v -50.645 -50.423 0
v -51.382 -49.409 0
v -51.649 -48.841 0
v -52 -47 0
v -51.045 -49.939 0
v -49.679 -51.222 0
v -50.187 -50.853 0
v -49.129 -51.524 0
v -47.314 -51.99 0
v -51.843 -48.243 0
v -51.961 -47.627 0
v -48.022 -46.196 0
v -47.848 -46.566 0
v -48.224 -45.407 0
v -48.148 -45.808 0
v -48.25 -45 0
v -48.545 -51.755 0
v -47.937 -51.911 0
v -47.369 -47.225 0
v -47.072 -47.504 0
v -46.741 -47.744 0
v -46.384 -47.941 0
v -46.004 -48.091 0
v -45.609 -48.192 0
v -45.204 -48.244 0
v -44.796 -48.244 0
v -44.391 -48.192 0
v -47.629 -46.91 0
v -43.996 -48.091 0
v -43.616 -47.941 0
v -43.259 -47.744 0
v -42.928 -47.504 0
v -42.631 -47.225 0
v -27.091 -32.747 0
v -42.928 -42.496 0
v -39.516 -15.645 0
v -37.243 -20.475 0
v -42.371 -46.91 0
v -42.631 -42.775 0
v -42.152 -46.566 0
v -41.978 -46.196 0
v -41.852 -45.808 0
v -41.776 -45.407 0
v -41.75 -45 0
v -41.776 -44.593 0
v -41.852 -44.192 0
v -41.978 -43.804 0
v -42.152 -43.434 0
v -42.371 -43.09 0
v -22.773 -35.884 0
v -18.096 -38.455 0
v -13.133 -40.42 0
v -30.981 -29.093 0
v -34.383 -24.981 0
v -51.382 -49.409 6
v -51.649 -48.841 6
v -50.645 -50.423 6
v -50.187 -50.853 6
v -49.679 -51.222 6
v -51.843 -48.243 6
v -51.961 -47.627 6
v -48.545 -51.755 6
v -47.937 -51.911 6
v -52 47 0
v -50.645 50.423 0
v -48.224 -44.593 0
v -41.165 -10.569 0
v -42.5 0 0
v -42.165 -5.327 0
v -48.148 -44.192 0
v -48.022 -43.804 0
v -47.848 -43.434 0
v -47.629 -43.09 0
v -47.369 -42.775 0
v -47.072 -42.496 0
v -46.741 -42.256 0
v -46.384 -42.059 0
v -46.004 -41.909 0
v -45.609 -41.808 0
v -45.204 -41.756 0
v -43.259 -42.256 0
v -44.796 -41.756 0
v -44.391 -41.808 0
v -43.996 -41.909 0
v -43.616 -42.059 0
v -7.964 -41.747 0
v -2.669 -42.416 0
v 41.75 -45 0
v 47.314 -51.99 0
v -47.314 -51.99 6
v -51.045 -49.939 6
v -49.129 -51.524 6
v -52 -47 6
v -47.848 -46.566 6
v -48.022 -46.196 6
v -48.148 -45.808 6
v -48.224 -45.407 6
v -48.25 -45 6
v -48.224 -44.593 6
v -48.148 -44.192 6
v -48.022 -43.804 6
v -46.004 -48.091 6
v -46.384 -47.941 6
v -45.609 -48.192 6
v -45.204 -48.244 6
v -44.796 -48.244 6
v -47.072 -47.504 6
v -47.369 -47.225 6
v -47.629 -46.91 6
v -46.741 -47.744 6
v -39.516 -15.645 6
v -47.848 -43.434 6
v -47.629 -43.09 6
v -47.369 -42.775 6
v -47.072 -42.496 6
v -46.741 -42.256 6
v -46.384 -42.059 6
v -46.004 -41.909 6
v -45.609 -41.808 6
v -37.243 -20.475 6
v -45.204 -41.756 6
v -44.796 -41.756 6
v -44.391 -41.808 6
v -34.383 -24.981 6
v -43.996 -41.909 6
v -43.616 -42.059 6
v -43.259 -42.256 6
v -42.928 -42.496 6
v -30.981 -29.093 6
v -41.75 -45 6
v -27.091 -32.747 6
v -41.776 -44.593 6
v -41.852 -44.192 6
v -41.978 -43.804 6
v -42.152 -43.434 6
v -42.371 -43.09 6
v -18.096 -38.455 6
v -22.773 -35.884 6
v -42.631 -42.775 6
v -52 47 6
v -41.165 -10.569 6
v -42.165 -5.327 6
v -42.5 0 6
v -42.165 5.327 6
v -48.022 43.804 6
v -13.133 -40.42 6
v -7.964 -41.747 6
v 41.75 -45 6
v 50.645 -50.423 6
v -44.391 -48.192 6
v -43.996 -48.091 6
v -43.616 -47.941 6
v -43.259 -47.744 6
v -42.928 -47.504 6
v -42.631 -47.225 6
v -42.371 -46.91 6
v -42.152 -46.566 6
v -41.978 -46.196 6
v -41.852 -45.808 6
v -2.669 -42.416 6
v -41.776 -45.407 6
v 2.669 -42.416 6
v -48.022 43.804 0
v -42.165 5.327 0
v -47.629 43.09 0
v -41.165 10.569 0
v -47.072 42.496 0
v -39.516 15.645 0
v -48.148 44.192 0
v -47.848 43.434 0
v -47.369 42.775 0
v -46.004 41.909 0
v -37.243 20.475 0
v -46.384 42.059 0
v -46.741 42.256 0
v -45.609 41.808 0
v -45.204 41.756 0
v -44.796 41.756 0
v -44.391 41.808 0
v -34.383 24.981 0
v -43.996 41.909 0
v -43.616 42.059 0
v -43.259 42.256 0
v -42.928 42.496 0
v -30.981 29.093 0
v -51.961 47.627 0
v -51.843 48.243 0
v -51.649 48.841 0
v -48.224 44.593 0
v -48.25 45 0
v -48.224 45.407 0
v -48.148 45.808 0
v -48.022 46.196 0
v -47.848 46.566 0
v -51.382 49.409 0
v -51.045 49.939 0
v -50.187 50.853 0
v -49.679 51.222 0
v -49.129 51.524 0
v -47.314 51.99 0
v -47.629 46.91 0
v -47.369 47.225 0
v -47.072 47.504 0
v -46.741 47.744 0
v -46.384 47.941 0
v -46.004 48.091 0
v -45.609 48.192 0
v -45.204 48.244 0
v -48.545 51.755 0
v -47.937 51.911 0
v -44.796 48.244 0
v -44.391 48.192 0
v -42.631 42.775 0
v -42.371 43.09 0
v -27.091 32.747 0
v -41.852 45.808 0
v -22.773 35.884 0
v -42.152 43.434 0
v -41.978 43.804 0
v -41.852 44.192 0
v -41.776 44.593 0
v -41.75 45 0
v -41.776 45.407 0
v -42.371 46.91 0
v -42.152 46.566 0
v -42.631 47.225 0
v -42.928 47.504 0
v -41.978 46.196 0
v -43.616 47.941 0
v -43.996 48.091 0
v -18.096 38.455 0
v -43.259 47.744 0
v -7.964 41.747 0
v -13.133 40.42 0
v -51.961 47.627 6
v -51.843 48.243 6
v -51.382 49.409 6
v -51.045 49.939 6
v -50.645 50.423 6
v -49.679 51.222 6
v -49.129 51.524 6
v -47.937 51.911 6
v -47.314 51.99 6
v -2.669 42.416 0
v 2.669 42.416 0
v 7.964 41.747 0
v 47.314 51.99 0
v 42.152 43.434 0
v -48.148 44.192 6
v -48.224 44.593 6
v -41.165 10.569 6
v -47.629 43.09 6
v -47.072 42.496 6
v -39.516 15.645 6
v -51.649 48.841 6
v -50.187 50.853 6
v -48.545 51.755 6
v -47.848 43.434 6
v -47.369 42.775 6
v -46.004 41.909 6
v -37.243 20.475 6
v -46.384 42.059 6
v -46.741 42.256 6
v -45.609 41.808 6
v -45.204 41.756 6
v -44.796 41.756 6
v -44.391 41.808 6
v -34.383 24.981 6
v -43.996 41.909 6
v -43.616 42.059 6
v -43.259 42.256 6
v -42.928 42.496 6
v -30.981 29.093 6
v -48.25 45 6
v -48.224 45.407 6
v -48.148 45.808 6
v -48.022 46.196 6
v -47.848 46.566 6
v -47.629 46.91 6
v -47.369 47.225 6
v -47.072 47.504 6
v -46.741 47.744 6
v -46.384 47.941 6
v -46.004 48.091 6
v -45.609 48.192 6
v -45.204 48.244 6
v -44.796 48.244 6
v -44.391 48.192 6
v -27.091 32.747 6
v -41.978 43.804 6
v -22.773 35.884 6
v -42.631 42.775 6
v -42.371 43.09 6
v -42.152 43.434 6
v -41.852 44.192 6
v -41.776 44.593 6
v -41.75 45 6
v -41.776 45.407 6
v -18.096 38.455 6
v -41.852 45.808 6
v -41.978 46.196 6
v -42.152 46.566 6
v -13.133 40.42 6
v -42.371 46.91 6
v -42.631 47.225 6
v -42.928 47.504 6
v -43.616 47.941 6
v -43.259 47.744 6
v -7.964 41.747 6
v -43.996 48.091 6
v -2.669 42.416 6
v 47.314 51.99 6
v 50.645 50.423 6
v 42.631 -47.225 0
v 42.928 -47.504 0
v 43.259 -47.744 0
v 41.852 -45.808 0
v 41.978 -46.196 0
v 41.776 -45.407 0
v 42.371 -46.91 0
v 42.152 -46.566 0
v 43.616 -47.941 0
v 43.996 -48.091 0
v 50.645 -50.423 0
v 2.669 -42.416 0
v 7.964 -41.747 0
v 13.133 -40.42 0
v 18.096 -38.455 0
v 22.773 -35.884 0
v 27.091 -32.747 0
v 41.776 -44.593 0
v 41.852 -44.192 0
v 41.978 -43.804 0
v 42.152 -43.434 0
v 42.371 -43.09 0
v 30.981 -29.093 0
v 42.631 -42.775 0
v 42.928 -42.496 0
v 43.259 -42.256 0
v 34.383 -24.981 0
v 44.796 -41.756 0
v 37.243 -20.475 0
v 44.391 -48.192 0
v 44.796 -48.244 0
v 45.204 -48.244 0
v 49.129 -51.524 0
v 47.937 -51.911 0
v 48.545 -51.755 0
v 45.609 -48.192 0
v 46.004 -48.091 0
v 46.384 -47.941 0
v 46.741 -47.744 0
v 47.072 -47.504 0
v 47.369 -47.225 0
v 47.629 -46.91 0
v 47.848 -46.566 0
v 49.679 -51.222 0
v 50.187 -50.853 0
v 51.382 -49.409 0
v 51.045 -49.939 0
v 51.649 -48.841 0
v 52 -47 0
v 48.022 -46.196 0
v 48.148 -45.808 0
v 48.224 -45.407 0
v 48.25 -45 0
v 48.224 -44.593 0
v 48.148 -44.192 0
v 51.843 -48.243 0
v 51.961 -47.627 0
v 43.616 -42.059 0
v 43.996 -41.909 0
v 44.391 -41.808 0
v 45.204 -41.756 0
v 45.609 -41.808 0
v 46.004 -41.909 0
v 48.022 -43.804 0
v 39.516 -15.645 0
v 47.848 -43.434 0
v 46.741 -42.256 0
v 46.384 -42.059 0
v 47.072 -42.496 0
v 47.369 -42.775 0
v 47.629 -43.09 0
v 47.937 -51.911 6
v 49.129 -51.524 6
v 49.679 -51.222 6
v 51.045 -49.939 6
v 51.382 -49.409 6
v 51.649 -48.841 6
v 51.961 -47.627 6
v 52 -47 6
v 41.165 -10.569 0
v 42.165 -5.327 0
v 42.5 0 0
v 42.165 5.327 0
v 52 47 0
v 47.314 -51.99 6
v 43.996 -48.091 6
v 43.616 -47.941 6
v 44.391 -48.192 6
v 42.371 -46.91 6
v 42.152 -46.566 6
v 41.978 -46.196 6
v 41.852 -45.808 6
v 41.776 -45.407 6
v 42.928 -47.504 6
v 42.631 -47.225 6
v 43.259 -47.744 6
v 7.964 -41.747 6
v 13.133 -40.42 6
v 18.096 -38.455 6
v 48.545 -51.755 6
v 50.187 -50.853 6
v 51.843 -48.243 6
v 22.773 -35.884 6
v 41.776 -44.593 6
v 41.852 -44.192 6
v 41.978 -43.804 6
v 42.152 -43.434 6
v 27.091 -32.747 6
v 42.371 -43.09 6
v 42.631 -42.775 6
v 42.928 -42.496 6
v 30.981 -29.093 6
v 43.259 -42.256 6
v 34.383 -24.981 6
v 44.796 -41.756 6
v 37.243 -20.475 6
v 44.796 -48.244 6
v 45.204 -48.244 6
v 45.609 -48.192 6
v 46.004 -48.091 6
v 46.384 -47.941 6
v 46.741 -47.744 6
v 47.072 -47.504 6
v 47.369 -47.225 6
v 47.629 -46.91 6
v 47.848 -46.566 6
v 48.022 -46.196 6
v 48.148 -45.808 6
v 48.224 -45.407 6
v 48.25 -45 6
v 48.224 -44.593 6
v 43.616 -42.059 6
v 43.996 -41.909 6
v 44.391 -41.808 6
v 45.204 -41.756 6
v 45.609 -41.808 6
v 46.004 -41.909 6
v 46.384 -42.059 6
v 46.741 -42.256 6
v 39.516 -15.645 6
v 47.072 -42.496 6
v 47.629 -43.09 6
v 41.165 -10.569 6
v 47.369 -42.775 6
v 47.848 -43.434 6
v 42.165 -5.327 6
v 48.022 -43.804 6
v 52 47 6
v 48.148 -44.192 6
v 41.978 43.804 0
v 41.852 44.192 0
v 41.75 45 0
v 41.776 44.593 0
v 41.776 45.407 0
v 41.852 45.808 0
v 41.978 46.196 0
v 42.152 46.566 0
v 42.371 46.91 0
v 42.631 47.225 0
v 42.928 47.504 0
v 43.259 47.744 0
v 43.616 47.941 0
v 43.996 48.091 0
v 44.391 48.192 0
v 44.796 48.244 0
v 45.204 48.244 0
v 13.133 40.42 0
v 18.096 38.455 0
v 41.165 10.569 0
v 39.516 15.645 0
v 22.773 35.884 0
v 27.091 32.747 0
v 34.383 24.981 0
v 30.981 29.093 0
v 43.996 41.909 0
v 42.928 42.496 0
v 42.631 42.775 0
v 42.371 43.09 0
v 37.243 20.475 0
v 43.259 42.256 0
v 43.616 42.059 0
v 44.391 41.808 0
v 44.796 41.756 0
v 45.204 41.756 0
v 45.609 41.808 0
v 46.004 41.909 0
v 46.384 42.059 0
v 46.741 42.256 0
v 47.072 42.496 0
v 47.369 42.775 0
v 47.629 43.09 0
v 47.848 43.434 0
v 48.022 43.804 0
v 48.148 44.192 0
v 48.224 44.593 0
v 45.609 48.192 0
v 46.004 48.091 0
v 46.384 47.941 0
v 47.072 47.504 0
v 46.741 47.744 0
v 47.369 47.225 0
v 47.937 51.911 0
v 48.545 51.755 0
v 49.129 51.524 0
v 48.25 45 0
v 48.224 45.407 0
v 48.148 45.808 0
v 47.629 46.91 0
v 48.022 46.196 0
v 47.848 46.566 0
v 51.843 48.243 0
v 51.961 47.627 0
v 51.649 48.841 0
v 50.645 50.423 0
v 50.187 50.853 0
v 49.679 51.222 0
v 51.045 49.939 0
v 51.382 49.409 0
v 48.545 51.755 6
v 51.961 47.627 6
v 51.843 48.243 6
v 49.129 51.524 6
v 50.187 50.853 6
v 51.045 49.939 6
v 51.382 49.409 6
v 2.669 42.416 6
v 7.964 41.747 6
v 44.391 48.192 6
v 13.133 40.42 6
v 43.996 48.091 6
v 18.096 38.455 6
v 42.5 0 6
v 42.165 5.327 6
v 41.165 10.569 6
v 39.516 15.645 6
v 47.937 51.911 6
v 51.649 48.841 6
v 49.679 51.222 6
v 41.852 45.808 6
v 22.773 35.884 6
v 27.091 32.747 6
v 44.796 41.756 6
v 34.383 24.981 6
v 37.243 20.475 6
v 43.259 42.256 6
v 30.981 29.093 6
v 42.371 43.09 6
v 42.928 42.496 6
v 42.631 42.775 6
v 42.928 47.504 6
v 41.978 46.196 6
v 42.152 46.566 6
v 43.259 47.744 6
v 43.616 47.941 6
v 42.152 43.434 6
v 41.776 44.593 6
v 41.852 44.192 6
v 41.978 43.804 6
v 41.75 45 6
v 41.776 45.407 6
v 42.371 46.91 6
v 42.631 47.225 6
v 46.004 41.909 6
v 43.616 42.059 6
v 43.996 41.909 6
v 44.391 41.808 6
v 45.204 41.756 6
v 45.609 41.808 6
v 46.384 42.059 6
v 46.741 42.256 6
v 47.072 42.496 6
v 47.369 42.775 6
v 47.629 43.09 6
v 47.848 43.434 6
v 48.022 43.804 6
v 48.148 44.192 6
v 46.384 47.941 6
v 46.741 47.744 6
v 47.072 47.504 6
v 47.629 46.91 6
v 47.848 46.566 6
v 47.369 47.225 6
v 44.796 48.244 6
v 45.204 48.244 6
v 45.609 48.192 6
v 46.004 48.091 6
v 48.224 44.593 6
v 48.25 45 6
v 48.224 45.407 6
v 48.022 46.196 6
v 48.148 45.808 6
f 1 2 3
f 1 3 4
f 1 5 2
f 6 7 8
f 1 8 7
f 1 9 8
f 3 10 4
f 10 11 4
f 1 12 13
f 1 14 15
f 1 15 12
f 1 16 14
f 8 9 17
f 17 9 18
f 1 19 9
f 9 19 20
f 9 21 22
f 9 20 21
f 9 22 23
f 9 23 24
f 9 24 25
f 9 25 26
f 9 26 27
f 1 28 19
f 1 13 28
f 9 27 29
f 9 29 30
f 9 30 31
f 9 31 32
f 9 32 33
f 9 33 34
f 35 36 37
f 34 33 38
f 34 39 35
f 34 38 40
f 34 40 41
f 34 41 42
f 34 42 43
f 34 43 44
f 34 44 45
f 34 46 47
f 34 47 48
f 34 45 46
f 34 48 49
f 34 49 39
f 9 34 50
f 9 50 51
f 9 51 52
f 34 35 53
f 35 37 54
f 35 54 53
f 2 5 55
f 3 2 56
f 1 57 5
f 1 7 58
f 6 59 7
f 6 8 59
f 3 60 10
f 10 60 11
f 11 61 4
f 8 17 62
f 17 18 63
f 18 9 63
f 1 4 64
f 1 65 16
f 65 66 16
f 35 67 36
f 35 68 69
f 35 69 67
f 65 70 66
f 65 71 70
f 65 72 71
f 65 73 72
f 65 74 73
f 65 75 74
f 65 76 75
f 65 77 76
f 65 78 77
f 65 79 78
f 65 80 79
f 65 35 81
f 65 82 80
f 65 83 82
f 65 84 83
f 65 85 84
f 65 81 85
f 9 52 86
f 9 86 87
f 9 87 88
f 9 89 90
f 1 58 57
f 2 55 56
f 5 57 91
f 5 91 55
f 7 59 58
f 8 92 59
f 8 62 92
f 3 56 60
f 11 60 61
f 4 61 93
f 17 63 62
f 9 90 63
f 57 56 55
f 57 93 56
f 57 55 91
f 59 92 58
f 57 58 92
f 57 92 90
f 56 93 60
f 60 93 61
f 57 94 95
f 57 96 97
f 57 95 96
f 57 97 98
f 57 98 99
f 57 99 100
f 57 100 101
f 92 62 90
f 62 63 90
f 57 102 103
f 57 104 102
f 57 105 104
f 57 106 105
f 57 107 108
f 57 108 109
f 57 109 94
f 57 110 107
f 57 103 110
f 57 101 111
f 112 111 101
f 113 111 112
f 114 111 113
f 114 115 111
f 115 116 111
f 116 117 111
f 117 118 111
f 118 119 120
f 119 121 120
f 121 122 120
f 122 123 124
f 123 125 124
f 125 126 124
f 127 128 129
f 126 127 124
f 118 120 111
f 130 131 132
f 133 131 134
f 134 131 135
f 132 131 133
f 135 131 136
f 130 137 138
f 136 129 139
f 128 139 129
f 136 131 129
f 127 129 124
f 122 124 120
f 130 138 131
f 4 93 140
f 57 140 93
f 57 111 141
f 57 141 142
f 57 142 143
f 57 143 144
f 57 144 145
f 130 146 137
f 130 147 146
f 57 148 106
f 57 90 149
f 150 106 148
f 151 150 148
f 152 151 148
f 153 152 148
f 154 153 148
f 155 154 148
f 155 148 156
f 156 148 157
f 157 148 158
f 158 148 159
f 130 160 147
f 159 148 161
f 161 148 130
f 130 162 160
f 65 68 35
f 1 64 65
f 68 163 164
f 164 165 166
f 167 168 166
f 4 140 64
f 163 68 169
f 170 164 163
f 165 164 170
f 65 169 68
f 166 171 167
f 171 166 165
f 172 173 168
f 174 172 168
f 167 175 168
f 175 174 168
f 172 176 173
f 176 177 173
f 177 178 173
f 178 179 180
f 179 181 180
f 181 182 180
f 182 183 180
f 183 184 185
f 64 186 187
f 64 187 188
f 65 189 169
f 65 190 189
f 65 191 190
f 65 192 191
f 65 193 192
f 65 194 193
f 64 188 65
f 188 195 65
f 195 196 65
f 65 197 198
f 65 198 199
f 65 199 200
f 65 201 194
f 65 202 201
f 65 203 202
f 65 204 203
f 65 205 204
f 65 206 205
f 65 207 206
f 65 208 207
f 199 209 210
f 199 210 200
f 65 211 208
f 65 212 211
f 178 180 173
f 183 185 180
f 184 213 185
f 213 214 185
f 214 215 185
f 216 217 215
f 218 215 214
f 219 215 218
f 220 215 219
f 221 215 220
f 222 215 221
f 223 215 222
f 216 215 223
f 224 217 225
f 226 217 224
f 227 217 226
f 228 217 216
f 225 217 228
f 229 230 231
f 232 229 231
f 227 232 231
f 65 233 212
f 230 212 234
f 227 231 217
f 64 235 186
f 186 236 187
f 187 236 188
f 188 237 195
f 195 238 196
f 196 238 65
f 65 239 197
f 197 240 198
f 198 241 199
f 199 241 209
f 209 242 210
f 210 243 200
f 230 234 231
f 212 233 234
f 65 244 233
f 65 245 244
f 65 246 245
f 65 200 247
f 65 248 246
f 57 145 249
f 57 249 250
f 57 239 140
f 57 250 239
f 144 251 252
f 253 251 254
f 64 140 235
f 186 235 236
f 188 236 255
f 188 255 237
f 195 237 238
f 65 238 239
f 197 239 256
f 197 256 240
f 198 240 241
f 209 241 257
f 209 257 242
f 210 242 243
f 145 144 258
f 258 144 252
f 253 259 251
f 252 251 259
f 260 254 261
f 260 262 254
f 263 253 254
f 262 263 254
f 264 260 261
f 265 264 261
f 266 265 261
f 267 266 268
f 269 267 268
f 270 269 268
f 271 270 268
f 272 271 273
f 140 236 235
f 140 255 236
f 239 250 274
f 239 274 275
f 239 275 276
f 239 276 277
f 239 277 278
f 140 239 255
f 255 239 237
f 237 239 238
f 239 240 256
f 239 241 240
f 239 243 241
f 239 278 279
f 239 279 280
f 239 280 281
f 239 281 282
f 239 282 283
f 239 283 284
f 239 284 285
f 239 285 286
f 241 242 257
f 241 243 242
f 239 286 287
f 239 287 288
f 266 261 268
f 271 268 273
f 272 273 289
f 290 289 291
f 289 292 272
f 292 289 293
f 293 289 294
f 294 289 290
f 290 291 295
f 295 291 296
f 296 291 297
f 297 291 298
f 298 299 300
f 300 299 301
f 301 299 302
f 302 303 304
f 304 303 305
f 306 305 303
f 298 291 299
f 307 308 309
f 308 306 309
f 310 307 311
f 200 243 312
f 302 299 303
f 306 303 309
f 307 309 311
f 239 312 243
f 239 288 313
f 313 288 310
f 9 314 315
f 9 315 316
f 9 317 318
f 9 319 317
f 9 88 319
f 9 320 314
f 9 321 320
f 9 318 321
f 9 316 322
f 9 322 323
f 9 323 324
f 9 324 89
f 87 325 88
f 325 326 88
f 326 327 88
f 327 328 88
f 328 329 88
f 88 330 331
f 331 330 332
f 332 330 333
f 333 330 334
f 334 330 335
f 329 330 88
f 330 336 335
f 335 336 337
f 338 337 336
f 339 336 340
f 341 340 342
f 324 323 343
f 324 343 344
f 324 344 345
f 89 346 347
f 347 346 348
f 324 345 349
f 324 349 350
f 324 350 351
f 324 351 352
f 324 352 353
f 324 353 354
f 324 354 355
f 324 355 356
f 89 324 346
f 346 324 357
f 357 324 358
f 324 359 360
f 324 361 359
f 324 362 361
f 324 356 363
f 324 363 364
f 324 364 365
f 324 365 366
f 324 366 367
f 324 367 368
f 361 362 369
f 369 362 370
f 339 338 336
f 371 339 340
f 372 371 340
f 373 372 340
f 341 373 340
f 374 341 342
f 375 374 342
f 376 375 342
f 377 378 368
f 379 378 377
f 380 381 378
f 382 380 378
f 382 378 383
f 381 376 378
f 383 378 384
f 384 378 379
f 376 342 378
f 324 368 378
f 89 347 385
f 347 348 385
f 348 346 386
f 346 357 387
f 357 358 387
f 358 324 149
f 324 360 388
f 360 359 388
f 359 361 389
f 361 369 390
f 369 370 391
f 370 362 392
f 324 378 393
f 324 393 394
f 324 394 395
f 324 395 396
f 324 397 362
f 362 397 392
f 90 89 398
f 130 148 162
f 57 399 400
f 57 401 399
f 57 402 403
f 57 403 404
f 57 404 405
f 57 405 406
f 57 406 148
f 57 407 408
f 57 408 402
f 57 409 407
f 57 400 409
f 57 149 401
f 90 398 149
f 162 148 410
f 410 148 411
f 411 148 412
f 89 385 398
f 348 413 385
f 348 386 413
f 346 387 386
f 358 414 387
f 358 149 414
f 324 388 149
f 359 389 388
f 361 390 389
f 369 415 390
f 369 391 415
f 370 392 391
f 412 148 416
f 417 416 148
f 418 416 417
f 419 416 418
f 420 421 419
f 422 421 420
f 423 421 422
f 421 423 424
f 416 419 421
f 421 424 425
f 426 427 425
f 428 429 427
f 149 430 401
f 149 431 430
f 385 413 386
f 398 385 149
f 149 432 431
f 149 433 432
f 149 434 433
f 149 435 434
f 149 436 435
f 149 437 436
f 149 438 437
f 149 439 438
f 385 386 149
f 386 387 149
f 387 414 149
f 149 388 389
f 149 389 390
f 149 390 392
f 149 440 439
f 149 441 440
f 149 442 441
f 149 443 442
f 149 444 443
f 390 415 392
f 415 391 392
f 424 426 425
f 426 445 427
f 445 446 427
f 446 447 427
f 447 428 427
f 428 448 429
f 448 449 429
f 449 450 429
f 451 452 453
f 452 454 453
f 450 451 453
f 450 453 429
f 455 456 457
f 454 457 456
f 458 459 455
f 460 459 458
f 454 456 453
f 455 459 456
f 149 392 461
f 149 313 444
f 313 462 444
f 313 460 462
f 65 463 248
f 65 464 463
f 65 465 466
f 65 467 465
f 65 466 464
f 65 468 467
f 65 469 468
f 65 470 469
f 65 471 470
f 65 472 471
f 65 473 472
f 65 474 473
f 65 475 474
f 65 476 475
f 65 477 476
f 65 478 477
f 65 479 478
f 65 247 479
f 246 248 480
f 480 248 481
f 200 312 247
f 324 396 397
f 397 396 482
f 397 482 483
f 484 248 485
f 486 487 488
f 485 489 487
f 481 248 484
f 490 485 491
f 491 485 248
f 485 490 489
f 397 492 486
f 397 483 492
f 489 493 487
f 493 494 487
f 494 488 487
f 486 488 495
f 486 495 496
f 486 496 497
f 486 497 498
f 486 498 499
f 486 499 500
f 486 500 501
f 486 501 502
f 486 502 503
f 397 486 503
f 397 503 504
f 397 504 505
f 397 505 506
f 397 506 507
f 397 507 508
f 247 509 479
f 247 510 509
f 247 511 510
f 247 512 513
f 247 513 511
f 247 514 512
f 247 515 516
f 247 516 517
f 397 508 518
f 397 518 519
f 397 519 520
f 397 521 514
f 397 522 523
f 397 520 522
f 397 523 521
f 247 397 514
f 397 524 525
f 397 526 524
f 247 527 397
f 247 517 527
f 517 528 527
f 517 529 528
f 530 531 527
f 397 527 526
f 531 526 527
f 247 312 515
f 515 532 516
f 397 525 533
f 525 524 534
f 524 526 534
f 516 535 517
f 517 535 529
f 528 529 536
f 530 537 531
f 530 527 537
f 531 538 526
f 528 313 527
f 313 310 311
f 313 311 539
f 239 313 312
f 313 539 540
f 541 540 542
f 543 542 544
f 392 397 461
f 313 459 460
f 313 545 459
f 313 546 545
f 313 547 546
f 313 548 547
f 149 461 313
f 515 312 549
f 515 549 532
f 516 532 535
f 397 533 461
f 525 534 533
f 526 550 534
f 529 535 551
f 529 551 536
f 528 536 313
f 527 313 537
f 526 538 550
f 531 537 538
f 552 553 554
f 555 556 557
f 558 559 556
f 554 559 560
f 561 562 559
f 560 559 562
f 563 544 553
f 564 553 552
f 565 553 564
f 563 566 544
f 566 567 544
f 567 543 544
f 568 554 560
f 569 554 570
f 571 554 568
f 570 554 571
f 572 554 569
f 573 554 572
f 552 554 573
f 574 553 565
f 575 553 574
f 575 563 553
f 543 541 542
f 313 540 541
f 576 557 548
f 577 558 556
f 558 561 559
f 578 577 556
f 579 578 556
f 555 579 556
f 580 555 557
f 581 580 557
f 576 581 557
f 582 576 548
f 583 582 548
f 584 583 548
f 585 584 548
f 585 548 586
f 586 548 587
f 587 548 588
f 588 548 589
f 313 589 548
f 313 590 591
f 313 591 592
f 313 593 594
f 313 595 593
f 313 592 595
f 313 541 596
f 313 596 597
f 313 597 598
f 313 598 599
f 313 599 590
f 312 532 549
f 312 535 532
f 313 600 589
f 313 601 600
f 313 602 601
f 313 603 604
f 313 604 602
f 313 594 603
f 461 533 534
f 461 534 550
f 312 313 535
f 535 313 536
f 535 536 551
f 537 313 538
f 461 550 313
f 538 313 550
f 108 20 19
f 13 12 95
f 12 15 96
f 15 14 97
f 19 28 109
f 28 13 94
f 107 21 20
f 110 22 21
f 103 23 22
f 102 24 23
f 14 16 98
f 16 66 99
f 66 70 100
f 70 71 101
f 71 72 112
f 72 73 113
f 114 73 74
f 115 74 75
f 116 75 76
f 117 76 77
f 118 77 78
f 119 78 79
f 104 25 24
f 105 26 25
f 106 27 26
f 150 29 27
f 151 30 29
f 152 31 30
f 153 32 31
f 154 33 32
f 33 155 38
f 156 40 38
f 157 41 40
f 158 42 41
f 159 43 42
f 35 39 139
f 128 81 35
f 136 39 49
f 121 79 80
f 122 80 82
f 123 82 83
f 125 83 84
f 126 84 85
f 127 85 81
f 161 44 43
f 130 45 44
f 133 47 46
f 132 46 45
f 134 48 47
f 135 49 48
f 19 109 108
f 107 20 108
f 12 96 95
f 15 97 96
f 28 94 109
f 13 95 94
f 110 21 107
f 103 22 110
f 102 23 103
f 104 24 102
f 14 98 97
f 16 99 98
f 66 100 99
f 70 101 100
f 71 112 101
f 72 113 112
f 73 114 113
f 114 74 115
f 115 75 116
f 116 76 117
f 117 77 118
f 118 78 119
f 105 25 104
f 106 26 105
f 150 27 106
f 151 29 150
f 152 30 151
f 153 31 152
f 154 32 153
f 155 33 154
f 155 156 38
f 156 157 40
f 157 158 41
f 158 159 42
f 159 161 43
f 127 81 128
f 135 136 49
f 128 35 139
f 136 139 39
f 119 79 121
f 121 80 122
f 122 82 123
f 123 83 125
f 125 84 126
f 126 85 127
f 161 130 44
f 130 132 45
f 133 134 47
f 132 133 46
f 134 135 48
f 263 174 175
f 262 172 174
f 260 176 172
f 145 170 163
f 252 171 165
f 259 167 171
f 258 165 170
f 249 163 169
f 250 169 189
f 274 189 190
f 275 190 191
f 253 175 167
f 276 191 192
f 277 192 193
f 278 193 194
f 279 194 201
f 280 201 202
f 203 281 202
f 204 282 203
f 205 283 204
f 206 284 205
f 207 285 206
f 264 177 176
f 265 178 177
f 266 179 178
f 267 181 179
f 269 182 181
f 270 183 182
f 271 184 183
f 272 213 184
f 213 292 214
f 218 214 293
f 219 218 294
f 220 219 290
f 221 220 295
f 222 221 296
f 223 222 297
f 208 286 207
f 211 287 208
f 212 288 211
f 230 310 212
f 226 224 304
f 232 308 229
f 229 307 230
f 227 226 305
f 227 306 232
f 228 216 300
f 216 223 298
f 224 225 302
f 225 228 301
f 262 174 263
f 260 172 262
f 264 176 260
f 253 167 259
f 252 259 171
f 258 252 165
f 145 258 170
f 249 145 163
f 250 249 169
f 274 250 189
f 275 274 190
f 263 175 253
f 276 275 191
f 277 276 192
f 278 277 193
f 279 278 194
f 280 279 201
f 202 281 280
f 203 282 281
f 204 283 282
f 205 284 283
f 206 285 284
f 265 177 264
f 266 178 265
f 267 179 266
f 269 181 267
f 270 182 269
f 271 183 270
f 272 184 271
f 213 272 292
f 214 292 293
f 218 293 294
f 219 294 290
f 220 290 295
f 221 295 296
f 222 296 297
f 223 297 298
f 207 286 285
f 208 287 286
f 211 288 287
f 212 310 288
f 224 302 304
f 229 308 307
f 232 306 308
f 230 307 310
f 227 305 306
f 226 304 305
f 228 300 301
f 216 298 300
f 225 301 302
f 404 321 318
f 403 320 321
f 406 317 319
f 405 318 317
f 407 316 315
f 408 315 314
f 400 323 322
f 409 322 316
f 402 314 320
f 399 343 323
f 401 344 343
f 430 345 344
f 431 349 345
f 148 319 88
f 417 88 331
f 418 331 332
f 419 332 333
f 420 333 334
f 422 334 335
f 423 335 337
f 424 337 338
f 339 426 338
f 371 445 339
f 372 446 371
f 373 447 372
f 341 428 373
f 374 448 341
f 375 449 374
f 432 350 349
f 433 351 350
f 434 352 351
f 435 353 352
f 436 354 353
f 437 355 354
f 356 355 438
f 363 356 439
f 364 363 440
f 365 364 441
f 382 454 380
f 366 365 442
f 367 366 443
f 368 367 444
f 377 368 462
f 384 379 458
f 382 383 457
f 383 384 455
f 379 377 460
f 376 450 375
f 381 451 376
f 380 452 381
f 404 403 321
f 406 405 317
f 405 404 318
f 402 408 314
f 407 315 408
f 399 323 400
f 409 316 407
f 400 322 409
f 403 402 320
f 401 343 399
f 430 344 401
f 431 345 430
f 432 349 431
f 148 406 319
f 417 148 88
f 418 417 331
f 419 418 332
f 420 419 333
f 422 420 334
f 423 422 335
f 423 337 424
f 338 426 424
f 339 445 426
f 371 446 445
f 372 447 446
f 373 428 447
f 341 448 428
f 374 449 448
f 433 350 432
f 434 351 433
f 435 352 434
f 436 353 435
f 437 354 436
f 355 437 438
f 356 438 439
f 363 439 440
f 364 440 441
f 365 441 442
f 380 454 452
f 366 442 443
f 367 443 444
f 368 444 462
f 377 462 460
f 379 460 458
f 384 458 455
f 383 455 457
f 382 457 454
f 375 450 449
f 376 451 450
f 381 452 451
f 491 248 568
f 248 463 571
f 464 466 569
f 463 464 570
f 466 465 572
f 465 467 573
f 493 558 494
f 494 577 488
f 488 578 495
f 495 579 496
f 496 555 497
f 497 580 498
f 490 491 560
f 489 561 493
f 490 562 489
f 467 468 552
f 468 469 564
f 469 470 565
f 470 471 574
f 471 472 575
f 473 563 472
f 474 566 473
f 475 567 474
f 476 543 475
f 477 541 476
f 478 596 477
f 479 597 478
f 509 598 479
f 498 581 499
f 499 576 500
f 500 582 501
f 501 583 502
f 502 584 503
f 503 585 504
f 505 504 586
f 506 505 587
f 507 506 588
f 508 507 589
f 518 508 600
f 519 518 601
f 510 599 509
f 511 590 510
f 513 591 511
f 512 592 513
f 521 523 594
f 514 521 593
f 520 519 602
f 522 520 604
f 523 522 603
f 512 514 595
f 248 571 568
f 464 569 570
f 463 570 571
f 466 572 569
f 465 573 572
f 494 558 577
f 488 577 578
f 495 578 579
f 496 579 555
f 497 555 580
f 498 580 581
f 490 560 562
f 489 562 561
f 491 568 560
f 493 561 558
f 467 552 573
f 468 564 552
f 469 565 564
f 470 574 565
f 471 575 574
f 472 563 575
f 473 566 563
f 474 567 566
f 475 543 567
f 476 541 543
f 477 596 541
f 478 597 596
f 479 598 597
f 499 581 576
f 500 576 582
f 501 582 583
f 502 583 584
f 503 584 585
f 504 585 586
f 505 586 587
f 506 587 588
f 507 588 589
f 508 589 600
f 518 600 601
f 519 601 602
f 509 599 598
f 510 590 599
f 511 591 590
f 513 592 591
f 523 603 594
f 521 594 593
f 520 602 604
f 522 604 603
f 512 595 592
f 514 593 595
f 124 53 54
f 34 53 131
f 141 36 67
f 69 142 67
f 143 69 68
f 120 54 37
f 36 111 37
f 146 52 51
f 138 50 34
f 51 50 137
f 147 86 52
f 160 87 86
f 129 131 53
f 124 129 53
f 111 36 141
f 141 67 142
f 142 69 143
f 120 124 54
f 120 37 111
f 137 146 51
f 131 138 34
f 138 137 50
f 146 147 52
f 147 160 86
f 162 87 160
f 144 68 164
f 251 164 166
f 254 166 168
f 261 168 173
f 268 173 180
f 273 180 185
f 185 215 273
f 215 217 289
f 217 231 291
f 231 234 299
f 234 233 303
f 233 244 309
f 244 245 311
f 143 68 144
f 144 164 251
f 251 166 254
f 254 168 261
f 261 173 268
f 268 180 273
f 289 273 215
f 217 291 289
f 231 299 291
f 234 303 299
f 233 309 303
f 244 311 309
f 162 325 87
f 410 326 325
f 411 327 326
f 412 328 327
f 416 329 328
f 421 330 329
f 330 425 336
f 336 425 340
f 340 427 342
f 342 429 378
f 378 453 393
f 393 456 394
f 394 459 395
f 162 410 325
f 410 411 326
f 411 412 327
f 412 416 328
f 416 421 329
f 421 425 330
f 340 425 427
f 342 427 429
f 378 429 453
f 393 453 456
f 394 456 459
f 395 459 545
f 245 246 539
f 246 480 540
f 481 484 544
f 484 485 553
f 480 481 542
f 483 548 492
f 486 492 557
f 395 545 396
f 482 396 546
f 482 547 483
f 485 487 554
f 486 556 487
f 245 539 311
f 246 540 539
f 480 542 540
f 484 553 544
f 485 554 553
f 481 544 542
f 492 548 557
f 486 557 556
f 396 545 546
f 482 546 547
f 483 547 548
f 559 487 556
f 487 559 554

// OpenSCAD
$fn = 50;

difference() {
	union() {
		hull() {
			translate(v = [-47.0, 47.0, 0]) {
				cylinder(h = 6, r = 5);
			}
			translate(v = [47.0, 47.0, 0]) {
				cylinder(h = 6, r = 5);
			}
			translate(v = [-47.0, -47.0, 0]) {
				cylinder(h = 6, r = 5);
			}
			translate(v = [47.0, -47.0, 0]) {
				cylinder(h = 6, r = 5);
			}
		}
	}
	union() {
		translate(v = [-45.0, -45.0, -100.0]) {
			cylinder(h = 200, r = 3.25);
		}
		translate(v = [-45.0, 45.0, -100.0]) {
			cylinder(h = 200, r = 3.25);
		}
		translate(v = [45.0, -45.0, -100.0]) {
			cylinder(h = 200, r = 3.25);
		}
		translate(v = [45.0, 45.0, -100.0]) {
			cylinder(h = 200, r = 3.25);
		}
		translate(v = [-45.0, -45.0, -100.0]) {
			cylinder(h = 200, r = 1.8);
		}
		translate(v = [-45.0, 45.0, -100.0]) {
			cylinder(h = 200, r = 1.8);
		}
		translate(v = [45.0, -45.0, -100.0]) {
			cylinder(h = 200, r = 1.8);
		}
		translate(v = [45.0, 45.0, -100.0]) {
			cylinder(h = 200, r = 1.8);
		}
		cylinder(h = 6, r = 42.5);
	}
}
